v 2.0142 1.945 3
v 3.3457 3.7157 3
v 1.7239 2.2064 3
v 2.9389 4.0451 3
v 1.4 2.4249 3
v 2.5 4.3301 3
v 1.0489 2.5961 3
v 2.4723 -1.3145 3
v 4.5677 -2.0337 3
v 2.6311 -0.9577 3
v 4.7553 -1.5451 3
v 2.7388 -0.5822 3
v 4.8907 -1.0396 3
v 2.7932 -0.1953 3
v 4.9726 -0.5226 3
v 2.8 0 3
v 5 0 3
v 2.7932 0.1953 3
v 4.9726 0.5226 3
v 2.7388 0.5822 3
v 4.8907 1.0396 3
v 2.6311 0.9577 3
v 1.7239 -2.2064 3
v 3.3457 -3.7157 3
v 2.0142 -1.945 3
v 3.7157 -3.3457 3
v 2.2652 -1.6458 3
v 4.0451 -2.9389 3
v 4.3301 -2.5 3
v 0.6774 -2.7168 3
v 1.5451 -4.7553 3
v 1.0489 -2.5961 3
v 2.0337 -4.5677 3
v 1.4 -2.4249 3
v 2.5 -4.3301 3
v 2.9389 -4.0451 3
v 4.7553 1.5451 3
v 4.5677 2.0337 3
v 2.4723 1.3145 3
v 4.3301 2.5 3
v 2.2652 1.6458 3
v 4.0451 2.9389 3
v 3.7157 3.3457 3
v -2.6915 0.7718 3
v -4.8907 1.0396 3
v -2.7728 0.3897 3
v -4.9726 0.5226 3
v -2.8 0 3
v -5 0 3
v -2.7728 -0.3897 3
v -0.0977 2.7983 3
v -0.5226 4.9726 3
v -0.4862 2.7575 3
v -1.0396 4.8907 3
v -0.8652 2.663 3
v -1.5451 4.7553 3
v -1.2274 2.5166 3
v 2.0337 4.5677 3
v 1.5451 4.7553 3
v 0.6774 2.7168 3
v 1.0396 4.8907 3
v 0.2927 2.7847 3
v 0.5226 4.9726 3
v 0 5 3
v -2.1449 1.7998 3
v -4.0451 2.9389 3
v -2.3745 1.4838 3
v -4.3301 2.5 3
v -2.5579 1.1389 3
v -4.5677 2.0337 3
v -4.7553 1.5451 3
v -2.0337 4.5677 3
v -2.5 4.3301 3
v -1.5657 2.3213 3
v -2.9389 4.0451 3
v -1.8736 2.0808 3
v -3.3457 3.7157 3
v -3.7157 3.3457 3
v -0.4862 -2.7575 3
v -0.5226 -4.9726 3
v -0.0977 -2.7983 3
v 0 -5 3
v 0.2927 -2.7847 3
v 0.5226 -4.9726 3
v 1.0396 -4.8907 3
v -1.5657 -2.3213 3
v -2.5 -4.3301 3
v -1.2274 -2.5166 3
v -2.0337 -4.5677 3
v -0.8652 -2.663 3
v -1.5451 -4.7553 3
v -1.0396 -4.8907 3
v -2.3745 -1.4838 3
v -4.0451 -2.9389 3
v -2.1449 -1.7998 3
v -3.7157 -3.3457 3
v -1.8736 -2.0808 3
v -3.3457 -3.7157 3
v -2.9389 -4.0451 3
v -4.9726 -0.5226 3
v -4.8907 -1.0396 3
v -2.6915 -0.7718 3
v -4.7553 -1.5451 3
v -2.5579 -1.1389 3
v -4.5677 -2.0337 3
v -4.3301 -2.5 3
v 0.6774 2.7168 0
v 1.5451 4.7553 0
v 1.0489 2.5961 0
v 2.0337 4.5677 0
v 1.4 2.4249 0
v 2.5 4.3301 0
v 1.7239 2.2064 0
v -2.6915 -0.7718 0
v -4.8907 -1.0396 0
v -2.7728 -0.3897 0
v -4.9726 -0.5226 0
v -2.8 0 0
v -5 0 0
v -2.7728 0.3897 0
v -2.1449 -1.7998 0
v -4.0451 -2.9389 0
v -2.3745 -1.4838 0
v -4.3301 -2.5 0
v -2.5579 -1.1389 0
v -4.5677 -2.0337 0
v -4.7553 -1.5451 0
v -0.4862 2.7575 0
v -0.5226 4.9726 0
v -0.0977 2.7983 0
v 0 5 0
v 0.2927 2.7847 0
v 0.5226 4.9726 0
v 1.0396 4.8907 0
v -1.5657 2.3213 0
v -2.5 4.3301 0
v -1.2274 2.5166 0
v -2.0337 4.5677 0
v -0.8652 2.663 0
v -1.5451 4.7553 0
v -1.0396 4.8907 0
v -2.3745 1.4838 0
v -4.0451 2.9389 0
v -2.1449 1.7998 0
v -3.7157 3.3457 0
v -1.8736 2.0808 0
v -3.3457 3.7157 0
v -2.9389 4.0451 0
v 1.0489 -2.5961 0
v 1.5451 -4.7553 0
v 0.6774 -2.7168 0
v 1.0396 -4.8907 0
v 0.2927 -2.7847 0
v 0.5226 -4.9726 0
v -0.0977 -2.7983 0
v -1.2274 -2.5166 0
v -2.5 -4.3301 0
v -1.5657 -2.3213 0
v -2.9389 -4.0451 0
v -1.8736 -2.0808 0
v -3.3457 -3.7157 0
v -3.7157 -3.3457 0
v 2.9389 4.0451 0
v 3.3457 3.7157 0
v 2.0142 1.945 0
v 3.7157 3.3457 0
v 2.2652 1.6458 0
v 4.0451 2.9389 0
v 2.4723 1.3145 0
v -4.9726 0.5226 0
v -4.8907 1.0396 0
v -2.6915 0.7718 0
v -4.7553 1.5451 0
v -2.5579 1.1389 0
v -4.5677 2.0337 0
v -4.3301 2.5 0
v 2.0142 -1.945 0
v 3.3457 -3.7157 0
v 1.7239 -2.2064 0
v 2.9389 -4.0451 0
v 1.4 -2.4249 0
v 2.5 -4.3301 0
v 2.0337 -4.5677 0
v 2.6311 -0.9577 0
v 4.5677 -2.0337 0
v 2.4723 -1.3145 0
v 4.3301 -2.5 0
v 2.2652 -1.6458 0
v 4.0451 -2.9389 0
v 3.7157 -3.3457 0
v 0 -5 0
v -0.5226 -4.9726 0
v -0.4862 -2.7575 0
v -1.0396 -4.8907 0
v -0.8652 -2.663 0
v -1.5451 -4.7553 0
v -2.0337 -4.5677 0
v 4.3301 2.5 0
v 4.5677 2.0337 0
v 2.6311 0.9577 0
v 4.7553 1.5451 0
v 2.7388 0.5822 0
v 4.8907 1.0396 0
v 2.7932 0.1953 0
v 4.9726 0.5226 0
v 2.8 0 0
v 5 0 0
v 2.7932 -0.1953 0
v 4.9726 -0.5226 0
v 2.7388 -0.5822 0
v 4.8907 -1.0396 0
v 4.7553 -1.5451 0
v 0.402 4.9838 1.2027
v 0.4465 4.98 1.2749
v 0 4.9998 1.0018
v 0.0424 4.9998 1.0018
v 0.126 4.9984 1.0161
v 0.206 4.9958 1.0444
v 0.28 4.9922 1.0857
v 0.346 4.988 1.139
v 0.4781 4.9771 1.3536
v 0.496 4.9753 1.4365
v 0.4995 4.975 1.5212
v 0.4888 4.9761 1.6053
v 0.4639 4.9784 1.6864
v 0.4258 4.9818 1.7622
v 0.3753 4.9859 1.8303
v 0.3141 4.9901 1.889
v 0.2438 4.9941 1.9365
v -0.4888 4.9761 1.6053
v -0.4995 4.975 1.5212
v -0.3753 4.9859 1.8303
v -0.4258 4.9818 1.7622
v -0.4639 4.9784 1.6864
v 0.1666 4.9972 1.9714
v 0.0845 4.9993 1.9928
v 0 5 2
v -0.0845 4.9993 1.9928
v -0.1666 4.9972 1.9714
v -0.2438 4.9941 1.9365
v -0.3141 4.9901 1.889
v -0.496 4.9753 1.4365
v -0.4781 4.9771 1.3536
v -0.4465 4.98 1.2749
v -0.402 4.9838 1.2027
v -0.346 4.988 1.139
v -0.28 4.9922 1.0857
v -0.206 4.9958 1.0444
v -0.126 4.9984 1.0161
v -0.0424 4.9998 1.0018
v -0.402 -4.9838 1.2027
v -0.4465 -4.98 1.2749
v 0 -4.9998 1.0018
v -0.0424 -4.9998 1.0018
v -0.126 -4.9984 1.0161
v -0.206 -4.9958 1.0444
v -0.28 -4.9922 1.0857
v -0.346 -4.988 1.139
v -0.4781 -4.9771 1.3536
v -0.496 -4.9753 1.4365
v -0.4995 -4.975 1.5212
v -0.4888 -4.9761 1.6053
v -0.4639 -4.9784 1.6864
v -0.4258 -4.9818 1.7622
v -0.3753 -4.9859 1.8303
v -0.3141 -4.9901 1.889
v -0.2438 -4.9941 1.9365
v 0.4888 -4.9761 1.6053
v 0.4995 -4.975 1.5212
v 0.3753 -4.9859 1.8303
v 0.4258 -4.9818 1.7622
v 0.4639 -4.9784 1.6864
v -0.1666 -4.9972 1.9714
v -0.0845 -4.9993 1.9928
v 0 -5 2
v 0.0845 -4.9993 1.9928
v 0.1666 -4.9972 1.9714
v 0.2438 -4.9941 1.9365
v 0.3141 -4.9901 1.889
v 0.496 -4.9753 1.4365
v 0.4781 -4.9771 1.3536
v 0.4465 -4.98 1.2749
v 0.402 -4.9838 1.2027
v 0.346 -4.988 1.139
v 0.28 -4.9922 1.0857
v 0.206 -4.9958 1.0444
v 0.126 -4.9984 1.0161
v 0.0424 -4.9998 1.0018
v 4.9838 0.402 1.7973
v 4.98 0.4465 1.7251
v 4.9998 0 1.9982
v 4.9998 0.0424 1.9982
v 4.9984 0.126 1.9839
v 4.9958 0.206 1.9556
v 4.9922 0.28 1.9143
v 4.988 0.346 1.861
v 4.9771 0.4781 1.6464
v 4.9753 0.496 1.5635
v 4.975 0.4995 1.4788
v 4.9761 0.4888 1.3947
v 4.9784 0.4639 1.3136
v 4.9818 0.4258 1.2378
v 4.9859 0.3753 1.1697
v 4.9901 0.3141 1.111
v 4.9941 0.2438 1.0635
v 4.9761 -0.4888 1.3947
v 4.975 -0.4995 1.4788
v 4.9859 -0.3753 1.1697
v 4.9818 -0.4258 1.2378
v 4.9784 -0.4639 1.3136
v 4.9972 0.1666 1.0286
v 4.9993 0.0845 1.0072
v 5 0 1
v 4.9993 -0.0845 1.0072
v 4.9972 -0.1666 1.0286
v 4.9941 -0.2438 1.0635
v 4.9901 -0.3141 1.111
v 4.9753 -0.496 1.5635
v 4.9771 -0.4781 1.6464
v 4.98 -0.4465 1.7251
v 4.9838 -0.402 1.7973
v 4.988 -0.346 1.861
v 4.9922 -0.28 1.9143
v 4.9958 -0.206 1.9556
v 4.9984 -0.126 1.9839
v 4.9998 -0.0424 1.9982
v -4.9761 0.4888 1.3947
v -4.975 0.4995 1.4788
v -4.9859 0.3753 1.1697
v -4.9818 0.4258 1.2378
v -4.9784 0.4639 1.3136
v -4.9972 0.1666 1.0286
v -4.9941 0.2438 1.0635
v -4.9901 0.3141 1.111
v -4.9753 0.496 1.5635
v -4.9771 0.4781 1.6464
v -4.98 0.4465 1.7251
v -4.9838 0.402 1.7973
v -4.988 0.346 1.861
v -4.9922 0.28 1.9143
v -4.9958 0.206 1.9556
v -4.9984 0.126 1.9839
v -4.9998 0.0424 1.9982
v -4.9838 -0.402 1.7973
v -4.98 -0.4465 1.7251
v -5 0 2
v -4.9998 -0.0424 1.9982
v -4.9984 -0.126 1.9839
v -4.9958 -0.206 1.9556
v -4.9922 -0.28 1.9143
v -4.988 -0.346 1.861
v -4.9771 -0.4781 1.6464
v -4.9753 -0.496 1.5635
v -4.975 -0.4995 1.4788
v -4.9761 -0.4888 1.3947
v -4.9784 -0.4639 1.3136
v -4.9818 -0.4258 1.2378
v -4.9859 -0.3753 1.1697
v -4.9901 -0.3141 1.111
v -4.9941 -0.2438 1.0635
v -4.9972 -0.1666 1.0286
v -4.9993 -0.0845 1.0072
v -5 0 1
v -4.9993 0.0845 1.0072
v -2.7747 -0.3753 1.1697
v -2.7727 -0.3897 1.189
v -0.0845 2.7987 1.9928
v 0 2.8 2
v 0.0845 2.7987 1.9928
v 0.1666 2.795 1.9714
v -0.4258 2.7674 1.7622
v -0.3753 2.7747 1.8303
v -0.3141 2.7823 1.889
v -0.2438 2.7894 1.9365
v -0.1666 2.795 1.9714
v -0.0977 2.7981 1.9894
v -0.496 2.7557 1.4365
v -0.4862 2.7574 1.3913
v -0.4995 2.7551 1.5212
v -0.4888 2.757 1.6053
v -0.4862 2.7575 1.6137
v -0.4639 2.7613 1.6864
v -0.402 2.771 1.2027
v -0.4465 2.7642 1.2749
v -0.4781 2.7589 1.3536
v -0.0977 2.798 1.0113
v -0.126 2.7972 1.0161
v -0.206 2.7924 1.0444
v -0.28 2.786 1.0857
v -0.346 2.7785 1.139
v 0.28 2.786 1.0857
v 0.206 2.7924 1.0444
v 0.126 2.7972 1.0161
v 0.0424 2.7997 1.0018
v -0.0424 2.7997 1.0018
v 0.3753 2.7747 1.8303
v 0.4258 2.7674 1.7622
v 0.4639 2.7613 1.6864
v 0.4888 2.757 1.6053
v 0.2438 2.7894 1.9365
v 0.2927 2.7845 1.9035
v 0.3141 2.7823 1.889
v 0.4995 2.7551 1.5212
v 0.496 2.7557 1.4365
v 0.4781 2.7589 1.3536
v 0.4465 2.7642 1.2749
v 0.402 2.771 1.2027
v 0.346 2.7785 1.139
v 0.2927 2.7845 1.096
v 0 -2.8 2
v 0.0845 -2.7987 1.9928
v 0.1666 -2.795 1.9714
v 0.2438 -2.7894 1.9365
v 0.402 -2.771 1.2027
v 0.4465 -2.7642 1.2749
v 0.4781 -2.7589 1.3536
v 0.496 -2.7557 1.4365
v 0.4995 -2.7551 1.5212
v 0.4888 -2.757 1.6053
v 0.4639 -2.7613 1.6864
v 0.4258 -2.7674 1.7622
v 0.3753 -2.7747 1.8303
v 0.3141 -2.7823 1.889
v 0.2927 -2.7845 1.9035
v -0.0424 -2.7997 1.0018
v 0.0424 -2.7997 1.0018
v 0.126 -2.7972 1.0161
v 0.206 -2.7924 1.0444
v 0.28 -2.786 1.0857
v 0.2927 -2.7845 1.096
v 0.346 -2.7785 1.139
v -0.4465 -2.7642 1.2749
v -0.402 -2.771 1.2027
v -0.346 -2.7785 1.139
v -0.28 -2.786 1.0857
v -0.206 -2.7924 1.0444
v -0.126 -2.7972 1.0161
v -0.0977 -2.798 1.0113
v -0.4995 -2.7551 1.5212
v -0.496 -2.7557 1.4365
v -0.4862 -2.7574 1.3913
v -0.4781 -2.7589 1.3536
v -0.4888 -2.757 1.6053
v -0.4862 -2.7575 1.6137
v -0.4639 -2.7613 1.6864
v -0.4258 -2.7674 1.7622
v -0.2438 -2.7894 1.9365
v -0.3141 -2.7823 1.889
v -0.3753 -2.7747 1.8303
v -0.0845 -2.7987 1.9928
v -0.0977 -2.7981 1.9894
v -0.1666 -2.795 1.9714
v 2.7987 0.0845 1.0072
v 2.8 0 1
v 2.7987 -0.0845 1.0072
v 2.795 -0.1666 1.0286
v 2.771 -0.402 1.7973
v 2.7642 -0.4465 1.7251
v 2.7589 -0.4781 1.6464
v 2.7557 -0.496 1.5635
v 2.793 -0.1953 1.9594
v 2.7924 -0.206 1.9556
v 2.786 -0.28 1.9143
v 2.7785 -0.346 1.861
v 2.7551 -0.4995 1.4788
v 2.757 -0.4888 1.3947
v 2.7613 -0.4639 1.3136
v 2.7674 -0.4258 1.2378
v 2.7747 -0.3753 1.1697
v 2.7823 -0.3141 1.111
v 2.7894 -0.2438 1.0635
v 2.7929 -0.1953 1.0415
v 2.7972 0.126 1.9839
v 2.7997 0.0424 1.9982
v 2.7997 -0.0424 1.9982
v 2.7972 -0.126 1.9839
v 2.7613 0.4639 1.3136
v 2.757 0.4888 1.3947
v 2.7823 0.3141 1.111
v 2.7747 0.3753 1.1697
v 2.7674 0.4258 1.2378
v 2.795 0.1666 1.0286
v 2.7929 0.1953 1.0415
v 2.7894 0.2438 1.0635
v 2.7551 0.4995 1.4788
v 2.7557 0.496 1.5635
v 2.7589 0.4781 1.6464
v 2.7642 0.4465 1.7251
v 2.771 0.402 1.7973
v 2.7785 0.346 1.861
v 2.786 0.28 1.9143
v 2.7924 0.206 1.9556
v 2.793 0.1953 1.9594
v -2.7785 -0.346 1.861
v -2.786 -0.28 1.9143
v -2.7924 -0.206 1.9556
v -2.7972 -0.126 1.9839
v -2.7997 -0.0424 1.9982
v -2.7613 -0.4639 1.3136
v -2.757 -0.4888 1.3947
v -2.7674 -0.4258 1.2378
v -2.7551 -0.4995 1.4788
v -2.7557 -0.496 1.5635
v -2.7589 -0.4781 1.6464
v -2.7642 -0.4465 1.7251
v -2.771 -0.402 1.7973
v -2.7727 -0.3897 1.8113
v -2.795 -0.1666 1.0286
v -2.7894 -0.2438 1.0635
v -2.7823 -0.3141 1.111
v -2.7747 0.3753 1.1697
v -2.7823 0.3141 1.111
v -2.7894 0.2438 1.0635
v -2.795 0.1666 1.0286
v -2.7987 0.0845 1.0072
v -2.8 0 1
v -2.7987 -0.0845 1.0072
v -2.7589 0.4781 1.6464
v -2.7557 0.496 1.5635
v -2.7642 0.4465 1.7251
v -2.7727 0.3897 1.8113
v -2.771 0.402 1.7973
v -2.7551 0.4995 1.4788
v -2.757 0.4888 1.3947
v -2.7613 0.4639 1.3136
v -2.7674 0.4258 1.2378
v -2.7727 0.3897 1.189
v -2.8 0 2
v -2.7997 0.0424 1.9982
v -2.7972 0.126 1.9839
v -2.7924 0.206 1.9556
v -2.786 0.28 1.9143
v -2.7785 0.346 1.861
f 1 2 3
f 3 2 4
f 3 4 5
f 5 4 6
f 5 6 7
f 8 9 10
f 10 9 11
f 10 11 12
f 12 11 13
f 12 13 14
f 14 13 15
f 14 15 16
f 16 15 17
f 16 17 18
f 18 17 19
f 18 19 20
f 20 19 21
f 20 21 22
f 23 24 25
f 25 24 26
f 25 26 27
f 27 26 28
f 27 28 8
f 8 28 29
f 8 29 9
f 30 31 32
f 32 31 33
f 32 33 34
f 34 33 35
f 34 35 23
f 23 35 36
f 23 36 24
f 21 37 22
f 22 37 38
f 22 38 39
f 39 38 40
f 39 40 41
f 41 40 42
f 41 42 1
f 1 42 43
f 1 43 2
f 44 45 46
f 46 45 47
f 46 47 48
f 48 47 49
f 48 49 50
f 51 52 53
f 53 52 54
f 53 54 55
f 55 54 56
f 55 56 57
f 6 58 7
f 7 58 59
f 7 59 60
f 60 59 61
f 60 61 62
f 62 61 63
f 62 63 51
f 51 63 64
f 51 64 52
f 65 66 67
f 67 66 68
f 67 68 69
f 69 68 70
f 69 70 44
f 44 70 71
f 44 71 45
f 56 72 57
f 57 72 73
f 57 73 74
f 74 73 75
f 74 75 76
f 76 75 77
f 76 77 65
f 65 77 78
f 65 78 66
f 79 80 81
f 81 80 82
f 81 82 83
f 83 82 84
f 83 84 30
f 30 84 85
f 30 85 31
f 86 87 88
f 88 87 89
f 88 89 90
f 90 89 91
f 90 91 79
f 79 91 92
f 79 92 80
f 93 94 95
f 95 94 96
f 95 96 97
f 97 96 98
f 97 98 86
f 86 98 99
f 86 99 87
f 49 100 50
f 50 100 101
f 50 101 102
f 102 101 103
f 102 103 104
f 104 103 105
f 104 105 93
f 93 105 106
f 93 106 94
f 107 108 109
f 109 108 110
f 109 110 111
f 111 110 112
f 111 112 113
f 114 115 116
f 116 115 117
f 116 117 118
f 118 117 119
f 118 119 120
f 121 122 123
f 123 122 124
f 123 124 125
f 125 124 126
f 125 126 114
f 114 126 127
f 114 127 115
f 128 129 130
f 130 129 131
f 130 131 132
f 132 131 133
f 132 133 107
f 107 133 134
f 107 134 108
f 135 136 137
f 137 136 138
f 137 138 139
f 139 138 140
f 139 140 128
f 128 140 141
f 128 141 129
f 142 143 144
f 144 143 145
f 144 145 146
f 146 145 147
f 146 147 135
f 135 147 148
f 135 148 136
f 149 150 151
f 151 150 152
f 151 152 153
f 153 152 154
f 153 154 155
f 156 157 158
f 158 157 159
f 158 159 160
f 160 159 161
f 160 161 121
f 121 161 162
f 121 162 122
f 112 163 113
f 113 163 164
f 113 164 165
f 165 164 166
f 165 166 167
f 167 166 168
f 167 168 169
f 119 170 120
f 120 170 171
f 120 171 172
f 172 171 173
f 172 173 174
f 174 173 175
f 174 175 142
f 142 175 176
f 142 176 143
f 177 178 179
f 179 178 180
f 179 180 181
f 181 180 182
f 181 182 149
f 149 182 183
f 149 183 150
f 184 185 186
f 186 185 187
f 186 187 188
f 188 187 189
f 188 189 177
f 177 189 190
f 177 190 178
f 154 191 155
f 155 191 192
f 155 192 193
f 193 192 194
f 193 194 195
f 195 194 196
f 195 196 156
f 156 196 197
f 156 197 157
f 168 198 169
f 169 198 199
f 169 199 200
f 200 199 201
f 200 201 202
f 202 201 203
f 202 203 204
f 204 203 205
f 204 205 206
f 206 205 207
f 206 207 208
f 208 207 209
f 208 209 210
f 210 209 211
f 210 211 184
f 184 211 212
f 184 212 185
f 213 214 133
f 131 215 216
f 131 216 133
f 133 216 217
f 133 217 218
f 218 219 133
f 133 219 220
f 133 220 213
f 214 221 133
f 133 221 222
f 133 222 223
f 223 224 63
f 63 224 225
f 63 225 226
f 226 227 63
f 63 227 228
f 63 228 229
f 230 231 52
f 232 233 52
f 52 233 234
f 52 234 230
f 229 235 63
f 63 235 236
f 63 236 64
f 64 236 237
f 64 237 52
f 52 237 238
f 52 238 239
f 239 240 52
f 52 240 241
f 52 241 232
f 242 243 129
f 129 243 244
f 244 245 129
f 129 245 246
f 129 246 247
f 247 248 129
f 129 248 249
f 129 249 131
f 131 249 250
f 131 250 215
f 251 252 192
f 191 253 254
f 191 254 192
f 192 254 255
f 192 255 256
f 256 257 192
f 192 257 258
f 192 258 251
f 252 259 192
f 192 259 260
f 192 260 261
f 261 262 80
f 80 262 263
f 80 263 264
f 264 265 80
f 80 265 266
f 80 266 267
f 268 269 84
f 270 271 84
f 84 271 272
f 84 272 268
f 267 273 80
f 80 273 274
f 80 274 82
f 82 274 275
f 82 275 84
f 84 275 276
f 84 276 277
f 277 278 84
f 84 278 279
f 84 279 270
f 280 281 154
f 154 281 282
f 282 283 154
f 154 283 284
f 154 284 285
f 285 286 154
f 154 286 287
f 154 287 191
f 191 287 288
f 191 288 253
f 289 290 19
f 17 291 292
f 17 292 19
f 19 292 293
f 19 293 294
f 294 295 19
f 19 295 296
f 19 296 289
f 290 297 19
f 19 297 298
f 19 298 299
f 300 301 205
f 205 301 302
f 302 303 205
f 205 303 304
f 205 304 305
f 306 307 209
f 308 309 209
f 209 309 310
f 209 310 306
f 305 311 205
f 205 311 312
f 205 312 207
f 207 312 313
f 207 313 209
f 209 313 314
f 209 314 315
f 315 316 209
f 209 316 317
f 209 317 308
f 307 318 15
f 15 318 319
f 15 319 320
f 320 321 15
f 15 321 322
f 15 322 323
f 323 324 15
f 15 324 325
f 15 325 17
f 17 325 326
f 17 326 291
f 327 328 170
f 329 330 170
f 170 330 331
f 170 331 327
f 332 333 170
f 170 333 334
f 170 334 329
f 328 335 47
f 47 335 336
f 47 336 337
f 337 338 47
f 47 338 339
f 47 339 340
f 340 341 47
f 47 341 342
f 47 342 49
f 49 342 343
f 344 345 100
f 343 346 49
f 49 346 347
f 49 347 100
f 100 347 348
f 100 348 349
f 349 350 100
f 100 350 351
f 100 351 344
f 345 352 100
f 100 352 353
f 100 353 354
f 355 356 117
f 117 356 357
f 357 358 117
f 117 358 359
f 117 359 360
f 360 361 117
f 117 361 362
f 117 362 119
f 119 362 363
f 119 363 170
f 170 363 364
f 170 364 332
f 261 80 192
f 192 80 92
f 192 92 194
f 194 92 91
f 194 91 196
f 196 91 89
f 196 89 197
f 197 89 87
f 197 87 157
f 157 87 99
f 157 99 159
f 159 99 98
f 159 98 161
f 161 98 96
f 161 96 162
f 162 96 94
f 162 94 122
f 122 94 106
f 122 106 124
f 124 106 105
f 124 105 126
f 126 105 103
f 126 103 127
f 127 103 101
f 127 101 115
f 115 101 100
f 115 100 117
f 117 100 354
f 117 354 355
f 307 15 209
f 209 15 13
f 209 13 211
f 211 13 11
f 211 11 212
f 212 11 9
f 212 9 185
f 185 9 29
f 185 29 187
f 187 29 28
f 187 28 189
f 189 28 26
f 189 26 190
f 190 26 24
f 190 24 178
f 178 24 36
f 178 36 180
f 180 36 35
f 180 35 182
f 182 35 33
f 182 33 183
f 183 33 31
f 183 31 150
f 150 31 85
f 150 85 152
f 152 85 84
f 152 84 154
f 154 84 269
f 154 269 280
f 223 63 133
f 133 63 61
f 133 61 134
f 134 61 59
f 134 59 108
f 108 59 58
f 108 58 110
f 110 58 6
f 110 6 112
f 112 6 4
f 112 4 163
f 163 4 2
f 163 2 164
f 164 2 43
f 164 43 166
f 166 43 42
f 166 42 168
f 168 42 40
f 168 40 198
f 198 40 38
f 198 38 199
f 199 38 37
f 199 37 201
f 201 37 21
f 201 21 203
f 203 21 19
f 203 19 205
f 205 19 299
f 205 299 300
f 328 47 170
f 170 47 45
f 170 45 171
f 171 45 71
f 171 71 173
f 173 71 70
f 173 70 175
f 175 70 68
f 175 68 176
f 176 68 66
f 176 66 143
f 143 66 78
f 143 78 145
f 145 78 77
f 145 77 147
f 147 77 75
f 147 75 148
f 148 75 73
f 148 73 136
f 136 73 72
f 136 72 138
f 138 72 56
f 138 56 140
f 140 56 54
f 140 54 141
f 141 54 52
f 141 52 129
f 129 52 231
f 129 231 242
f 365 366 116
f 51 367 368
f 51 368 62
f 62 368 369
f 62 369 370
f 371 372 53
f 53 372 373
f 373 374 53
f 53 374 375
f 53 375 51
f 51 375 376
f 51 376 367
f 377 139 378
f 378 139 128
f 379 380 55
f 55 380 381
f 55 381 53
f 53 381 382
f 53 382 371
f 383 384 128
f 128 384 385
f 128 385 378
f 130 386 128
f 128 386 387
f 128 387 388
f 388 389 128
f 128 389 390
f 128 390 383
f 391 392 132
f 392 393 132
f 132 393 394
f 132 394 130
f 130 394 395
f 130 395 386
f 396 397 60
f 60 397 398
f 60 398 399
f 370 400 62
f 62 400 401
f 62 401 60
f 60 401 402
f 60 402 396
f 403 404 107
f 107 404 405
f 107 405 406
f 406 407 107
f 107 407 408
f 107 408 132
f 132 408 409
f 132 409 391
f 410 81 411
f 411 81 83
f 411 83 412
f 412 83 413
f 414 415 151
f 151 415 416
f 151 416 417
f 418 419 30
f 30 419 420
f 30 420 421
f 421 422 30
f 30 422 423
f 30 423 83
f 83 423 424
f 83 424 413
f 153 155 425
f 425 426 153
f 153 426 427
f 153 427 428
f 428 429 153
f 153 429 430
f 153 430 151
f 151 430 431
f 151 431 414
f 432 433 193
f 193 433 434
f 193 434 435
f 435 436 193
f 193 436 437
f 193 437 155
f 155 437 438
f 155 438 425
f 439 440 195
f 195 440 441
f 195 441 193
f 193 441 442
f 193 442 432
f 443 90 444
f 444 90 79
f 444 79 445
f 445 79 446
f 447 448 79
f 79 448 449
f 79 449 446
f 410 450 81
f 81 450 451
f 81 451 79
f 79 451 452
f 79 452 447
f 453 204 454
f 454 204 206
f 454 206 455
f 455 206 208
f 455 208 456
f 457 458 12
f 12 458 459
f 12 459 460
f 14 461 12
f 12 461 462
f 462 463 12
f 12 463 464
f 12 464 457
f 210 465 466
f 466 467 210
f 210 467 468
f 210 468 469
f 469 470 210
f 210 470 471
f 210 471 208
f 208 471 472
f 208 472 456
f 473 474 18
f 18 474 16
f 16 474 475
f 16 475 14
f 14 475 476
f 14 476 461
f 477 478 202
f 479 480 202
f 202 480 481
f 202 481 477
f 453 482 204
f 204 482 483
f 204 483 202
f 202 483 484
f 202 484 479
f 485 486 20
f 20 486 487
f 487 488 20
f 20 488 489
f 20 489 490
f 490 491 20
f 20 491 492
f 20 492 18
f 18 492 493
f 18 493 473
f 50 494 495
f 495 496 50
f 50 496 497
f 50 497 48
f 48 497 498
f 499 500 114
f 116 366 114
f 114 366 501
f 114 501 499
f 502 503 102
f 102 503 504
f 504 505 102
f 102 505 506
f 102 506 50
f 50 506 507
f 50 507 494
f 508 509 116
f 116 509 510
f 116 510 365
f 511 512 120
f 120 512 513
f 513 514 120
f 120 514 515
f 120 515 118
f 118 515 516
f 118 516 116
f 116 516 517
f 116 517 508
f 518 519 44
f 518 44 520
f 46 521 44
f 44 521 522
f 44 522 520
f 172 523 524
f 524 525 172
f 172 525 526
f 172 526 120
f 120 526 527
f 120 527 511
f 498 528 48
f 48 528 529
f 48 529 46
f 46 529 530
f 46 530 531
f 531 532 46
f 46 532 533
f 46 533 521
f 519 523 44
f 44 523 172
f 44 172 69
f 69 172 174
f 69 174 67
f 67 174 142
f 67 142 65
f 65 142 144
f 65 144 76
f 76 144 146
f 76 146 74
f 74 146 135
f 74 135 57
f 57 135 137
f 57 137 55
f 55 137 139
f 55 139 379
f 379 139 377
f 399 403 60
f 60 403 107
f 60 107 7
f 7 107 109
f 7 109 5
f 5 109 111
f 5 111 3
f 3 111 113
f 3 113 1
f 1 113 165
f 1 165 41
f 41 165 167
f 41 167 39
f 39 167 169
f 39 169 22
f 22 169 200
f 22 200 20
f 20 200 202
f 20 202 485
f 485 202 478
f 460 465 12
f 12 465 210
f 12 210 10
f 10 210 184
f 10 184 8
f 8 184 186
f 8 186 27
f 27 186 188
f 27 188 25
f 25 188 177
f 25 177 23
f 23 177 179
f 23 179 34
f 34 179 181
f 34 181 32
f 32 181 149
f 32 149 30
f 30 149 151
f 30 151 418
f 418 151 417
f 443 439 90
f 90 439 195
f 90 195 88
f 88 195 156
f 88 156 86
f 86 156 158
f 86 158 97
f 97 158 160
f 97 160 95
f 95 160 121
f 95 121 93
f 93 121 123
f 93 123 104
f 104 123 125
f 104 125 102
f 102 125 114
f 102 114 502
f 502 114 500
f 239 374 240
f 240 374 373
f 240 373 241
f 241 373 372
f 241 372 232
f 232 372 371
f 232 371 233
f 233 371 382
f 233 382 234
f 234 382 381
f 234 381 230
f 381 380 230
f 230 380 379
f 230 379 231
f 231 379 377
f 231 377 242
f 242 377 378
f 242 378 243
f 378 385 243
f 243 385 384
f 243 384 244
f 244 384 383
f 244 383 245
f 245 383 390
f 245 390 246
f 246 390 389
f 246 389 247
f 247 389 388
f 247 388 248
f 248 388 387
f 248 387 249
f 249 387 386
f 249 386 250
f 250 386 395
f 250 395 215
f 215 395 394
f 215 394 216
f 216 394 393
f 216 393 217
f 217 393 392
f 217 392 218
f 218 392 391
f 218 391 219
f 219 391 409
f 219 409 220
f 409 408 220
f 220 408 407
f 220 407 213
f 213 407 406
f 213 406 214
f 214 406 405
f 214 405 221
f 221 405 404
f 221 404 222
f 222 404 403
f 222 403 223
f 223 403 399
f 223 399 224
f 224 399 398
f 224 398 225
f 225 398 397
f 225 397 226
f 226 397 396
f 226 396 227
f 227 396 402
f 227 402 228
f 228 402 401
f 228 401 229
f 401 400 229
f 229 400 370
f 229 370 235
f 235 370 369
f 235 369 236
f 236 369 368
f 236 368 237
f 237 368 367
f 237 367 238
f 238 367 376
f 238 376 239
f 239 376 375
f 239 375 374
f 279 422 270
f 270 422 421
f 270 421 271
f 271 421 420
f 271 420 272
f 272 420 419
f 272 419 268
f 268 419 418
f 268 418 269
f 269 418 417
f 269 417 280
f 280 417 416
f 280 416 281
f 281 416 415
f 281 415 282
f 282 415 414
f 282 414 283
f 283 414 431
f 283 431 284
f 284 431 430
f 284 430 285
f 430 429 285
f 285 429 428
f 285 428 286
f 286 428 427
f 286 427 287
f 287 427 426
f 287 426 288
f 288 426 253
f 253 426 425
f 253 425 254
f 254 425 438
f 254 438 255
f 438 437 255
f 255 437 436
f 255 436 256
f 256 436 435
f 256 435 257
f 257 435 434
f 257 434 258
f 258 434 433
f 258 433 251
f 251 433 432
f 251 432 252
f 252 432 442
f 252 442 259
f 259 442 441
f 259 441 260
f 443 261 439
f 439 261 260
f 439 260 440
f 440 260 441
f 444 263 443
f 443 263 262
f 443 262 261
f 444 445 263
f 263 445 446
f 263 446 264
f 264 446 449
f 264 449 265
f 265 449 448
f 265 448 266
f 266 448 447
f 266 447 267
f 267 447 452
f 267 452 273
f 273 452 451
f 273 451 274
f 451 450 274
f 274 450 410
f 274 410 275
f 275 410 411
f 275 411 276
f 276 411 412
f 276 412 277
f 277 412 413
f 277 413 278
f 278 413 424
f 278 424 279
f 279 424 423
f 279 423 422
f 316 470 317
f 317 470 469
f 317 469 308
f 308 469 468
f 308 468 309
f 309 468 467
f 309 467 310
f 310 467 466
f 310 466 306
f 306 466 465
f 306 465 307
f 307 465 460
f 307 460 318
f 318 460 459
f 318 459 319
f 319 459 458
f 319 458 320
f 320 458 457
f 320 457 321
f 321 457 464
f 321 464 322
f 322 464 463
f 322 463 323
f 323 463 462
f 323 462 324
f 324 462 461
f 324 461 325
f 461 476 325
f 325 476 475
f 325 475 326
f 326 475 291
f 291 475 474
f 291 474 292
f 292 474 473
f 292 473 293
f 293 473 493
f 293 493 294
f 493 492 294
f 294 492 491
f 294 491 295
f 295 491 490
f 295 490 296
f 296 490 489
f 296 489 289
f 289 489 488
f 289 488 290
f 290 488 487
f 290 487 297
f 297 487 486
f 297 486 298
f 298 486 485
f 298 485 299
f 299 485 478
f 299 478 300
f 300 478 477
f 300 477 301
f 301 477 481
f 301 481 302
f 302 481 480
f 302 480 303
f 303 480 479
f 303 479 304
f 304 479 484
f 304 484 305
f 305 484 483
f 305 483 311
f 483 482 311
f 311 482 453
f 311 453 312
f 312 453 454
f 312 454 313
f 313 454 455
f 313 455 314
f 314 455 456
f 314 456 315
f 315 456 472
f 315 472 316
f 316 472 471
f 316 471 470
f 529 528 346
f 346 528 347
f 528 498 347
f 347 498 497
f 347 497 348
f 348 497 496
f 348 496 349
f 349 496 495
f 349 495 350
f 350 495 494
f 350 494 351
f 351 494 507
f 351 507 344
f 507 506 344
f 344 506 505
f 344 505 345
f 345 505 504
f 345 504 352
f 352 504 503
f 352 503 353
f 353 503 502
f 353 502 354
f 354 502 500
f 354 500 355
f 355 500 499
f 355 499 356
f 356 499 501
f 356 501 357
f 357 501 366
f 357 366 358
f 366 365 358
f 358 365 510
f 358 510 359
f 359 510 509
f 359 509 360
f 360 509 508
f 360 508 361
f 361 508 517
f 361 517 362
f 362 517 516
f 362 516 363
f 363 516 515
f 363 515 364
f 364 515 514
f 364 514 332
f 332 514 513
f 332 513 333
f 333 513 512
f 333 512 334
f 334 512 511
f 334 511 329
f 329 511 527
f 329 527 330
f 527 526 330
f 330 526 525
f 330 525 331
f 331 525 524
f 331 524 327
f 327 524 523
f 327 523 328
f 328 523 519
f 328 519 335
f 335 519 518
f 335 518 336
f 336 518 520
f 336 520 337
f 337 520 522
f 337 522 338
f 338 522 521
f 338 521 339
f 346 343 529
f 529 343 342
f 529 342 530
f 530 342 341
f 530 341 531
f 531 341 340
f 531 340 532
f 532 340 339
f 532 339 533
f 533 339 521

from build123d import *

# Parameters (mm, degrees)
SKETCH_1_R          = 5
SKETCH_1_R_2        = 2.8
EXTRUDE_1_DEPTH     = 3
SKETCH_2_R          = 0.5
CUT_EXTRUDE_1_DEPTH = 6.5
SKETCH_3_R          = 0.5
CUT_EXTRUDE_2_DEPTH = 6.5


with BuildPart() as part:
    # 草图1 → 凸台-拉伸1 (new body)
    with BuildSketch(Plane.XY):
        Circle(SKETCH_1_R)
        Circle(SKETCH_1_R_2, mode=Mode.SUBTRACT)
    extrude(amount=EXTRUDE_1_DEPTH)

    # 草图2 → 切除-拉伸1 (cut, symmetric)
    with BuildSketch(Plane(origin=(0, 0, 0), x_dir=(1, 0, 0), z_dir=(0, 1, 0))):
        with Locations((0, -1.5)):
            Circle(SKETCH_2_R)
    extrude(amount=CUT_EXTRUDE_1_DEPTH, both=True, mode=Mode.SUBTRACT)

    # 草图3 → 切除-拉伸2 (cut, symmetric)
    with BuildSketch(Plane(origin=(0, 0, 0), x_dir=(0, 0, -1), z_dir=(1, 0, 0))):
        with Locations((-1.5, 0)):
            Circle(SKETCH_3_R)
    extrude(amount=CUT_EXTRUDE_2_DEPTH, both=True, mode=Mode.SUBTRACT)


solid = part.part
